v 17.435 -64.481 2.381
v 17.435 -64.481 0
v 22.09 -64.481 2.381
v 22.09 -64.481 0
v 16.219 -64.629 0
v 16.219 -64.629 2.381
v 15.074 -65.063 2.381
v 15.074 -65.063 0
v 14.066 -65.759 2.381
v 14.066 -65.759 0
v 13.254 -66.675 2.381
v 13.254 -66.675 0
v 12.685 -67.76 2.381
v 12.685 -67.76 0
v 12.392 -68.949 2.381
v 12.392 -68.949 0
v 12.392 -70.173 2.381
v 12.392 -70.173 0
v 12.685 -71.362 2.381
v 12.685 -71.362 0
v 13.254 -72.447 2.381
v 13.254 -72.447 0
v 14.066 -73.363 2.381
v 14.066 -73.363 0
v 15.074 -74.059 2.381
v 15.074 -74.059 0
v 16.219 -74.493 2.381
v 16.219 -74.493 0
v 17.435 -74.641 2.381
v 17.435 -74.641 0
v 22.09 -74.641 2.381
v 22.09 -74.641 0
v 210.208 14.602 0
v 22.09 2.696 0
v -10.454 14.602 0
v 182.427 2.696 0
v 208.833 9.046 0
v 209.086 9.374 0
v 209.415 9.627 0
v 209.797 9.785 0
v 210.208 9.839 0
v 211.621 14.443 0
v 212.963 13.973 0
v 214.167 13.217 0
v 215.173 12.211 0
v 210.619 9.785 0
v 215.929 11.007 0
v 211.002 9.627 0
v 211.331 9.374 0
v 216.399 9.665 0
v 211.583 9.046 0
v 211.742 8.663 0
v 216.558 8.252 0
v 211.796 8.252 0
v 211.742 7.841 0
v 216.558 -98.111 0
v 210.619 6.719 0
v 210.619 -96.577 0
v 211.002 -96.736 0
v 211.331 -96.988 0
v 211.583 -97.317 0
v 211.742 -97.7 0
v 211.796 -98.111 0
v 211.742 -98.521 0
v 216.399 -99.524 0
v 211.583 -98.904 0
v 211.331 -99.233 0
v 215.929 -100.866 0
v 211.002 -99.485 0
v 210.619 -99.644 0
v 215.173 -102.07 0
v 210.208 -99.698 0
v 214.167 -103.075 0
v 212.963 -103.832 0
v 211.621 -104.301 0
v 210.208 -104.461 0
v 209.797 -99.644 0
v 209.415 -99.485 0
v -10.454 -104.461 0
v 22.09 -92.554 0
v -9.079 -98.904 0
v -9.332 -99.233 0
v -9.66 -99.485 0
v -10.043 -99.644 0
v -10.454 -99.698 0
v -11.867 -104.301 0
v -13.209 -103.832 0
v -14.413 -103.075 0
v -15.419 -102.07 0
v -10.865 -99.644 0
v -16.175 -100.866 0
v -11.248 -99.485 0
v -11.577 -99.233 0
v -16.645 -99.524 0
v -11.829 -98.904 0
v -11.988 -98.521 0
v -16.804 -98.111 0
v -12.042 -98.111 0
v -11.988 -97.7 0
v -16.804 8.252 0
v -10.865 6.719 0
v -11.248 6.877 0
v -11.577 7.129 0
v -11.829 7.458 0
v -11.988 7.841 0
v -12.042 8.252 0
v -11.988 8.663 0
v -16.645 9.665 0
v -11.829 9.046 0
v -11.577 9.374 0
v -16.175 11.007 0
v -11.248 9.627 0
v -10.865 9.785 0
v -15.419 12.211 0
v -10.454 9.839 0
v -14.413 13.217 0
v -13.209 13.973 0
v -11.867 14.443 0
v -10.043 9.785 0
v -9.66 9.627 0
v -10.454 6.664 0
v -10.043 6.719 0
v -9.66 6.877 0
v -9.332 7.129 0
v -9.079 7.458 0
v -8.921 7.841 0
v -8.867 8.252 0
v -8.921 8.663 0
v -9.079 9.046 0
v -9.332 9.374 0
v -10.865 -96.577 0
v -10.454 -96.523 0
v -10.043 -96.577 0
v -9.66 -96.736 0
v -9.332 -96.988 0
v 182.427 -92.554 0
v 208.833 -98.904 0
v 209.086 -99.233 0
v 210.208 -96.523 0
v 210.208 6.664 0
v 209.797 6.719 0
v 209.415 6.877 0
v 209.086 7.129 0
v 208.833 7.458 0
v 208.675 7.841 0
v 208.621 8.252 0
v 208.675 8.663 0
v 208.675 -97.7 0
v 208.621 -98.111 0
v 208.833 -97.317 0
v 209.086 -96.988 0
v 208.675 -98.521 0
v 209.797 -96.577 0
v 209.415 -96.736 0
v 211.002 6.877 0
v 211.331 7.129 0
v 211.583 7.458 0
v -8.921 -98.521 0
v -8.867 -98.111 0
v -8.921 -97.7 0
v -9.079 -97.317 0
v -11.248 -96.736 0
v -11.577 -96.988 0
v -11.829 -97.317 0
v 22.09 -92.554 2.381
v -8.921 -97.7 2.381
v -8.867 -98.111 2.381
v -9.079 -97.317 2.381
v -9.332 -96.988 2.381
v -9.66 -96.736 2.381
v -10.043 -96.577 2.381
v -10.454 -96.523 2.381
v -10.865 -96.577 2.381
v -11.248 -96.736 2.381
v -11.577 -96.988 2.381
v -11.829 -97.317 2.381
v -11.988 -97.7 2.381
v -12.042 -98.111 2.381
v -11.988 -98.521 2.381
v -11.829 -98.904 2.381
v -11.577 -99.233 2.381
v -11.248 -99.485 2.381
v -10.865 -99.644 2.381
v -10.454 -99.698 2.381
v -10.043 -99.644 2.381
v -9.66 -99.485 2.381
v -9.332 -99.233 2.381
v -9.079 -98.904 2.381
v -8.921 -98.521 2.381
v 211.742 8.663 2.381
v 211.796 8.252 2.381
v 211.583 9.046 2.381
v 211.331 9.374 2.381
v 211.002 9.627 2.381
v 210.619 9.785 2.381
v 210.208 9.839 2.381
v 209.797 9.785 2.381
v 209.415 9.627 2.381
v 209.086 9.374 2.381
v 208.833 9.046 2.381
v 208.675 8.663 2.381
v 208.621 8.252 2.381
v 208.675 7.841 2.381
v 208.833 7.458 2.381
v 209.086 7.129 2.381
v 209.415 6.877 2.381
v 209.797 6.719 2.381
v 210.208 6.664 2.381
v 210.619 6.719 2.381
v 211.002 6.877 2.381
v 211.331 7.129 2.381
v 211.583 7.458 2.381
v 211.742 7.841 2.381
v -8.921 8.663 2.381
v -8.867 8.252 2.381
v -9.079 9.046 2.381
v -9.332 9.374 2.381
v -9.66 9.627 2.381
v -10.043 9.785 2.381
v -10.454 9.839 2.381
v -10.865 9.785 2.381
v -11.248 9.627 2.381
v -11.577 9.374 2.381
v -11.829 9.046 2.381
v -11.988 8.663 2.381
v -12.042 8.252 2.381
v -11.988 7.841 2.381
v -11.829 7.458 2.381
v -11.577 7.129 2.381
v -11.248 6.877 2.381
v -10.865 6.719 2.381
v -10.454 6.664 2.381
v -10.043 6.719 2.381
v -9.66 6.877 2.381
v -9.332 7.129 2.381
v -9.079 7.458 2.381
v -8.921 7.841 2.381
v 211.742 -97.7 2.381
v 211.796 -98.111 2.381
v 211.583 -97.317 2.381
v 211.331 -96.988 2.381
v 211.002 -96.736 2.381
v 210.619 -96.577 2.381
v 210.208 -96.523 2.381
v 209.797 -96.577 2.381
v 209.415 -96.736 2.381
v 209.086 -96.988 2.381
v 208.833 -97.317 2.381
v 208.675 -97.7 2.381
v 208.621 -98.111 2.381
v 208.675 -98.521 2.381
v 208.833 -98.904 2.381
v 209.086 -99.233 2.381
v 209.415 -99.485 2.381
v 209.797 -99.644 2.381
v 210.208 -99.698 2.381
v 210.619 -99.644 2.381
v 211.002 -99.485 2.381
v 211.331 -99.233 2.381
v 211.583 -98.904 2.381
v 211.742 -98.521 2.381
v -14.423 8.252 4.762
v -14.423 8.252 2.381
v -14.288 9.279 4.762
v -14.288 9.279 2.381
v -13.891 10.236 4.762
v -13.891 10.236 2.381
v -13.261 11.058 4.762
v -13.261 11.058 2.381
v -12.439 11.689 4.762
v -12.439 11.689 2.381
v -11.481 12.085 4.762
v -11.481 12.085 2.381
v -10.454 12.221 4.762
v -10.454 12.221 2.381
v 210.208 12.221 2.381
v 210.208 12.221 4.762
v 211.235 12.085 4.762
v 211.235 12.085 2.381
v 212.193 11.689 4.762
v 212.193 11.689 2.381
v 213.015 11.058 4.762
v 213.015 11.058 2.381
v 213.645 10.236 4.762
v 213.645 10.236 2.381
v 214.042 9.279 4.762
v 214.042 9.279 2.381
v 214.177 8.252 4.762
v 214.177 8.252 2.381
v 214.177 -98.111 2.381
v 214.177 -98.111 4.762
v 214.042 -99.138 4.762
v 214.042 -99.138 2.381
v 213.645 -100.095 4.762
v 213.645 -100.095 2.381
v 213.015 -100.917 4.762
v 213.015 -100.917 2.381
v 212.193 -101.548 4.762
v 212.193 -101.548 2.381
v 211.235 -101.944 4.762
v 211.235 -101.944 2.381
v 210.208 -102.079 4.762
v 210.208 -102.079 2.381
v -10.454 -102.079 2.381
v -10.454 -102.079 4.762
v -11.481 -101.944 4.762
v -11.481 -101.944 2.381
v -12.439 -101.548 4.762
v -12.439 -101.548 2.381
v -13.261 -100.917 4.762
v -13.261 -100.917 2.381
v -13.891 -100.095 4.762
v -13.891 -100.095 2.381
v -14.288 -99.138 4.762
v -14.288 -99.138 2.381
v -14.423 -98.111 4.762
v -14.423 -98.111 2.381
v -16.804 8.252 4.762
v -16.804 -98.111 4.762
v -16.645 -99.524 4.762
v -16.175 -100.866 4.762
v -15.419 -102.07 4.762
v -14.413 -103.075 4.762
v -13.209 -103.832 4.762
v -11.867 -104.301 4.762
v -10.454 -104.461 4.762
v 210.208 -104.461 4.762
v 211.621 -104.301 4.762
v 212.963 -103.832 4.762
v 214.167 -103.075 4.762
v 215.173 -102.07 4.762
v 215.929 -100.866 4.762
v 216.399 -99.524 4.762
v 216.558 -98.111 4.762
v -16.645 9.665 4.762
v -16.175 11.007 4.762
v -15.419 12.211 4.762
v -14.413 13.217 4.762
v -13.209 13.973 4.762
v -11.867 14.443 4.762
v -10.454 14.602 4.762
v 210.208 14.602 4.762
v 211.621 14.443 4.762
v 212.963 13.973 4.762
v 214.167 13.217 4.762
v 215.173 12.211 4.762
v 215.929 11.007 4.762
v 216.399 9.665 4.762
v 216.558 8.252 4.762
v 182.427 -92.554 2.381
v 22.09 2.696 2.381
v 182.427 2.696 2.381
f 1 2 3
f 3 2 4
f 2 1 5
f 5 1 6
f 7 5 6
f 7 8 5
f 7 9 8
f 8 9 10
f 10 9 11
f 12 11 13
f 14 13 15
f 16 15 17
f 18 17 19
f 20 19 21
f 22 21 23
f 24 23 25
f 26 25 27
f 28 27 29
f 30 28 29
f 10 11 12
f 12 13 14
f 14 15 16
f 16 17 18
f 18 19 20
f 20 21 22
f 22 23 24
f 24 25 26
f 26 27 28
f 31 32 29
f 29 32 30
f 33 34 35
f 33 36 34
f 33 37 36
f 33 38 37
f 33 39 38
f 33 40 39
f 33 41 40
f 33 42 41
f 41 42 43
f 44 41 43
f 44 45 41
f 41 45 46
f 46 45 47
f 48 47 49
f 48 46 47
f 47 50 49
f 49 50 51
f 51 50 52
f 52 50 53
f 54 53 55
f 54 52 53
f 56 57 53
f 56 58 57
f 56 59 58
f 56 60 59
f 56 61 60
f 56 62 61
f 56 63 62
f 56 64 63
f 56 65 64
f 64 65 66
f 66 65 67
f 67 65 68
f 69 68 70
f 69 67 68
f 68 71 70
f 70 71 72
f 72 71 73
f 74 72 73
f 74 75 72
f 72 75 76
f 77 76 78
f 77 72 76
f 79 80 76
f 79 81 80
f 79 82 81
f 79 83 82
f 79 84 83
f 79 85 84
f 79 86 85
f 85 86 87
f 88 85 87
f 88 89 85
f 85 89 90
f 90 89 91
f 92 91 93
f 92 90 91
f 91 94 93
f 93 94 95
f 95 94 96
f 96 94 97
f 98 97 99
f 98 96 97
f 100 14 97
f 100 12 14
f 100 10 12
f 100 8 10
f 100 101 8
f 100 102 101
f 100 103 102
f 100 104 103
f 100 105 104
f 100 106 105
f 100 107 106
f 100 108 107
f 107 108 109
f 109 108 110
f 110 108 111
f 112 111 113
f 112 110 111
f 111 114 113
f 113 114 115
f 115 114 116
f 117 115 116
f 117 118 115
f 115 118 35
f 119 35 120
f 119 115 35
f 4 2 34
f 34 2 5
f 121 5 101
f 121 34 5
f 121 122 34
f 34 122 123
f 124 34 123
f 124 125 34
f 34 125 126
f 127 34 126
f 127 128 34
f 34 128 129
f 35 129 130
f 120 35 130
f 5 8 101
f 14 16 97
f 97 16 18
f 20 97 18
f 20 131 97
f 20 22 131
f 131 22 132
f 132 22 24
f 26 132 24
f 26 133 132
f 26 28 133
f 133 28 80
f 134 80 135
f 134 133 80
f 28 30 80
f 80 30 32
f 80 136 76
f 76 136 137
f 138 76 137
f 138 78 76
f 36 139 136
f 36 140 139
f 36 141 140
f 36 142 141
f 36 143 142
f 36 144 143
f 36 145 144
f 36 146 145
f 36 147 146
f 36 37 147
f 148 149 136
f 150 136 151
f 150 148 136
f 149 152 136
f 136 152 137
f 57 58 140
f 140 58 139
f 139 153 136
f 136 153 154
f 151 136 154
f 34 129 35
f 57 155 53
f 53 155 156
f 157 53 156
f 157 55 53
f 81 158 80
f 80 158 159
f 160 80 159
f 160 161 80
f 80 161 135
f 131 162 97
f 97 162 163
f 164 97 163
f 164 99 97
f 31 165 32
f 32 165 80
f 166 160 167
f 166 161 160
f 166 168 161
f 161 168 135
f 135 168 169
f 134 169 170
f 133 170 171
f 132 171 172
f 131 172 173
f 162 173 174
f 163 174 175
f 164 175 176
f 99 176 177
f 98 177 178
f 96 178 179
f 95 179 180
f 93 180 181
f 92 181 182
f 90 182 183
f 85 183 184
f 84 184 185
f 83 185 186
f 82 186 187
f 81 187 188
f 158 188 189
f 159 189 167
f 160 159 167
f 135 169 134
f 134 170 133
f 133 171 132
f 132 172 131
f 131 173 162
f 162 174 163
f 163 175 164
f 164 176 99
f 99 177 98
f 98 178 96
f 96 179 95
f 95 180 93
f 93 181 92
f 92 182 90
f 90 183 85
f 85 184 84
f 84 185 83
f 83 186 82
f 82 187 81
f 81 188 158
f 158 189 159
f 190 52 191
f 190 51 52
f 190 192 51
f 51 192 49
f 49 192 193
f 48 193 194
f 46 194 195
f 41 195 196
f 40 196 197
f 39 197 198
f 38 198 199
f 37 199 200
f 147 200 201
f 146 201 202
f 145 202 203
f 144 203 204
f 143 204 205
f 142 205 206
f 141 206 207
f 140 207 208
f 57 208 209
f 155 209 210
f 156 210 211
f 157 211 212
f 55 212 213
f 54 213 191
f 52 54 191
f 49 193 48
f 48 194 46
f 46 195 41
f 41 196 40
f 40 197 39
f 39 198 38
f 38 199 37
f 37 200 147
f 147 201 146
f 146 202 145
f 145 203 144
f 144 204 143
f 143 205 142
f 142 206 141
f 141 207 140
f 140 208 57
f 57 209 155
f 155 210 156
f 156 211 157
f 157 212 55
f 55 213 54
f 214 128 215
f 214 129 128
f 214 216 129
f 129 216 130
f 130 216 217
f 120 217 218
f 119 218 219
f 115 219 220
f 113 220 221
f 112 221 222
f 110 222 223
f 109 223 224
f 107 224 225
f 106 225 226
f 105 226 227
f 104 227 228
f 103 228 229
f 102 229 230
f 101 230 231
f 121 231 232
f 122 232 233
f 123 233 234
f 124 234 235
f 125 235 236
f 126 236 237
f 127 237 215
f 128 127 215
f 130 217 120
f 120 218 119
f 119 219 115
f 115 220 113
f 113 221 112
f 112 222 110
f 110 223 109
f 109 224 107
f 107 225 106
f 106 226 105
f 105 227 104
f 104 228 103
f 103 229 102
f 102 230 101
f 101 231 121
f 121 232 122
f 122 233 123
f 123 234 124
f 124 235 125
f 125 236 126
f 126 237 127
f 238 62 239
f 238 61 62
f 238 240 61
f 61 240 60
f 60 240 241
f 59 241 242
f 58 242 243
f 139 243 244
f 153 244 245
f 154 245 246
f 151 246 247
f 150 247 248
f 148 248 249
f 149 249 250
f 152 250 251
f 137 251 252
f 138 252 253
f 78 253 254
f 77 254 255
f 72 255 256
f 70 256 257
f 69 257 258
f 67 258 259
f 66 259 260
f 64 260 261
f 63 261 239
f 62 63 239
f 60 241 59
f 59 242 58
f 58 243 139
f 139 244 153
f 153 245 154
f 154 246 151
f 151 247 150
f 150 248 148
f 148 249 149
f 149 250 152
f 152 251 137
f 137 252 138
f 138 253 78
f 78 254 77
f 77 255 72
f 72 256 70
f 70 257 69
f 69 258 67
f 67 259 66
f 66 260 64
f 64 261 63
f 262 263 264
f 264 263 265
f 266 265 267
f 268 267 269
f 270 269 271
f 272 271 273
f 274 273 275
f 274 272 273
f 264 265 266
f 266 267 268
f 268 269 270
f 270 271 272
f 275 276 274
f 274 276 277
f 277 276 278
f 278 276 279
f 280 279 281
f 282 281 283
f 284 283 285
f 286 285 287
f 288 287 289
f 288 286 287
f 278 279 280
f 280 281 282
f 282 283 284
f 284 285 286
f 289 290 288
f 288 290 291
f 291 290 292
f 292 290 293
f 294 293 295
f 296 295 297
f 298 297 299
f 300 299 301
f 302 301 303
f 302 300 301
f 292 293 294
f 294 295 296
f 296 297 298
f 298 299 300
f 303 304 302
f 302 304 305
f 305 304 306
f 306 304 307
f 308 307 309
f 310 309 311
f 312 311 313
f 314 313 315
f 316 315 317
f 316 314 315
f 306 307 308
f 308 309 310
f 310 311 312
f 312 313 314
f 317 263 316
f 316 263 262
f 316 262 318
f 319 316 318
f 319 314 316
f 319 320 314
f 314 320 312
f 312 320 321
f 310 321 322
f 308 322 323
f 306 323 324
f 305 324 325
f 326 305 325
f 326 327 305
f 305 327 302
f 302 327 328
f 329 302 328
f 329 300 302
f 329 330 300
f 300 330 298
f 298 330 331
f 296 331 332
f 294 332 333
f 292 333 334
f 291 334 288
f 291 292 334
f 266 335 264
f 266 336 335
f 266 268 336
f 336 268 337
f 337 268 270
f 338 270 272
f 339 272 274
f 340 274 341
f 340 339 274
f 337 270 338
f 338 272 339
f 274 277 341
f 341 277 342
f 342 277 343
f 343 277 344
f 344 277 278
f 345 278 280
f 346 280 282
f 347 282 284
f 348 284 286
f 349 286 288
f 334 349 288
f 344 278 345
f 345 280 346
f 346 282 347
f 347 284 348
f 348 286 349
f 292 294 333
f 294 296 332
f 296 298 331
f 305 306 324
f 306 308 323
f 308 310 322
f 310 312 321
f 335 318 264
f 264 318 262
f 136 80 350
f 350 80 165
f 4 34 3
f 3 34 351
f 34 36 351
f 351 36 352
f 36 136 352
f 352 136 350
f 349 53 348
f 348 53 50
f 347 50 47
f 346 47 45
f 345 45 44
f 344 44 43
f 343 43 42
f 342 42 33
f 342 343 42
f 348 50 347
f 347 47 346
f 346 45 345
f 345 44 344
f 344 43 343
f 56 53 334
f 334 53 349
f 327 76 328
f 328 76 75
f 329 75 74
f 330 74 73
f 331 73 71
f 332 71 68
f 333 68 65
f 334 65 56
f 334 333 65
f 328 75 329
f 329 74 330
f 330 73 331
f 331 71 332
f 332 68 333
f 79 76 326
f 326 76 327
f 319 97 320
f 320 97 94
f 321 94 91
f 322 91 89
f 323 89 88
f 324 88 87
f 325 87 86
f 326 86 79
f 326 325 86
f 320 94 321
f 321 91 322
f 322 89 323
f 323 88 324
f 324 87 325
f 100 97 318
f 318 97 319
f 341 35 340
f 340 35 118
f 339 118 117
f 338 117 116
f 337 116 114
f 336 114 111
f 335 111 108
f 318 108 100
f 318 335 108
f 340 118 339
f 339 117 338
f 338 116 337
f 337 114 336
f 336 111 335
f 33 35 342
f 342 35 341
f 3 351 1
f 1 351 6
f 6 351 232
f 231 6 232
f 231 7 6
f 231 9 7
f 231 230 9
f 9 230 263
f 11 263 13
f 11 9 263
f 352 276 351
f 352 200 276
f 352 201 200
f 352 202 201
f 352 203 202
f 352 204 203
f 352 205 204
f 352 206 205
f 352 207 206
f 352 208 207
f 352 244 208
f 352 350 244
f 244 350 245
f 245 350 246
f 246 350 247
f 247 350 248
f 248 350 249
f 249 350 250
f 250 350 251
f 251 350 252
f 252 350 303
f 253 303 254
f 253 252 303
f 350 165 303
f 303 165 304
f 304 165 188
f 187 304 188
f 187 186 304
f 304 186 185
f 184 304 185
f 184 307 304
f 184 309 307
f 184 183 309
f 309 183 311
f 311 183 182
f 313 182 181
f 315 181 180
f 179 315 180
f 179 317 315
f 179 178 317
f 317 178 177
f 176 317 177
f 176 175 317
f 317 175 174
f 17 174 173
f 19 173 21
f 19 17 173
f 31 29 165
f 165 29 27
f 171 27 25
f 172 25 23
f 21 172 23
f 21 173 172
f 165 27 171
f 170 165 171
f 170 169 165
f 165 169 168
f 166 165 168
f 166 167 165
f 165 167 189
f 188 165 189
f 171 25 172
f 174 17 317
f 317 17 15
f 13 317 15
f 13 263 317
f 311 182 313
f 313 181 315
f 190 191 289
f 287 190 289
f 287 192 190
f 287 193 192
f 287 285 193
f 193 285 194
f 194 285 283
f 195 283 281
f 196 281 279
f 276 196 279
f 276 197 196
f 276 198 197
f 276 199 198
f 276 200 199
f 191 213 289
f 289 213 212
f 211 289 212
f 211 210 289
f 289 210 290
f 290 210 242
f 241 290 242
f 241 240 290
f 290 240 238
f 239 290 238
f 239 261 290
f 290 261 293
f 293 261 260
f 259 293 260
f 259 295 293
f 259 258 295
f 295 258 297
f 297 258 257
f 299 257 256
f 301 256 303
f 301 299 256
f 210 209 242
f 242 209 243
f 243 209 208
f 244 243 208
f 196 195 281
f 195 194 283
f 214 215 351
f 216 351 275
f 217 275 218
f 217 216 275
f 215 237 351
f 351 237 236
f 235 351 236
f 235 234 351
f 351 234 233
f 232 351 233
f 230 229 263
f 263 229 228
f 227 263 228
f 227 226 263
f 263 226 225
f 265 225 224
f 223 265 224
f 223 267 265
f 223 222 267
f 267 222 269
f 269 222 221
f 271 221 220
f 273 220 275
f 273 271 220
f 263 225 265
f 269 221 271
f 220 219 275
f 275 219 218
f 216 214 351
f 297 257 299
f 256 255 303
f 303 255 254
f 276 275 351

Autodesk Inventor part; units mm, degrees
ref_plane "YZ Plane" through (0, 0, 0) normal (1, 0, 0) x (0, 1, 0)
ref_plane "XZ Plane" through (0, 0, 0) normal (0, 1, 0) x (-1, 0, 0)
ref_plane "XY Plane" through (0, 0, 0) normal (0, 0, 1) x (1, 0, 0)
sketch "Sketch1" plane through (0, 0, 0) normal (0, 0, 1) x (1, 0, 0)
  line L0 (-10.4542, 14.6019) -> (210.2083, 14.6019)
  line L1 (216.5583, 8.2519) -> (216.5583, -98.1106)
  line L2 (210.2083, -104.4606) -> (-10.4542, -104.4606)
  line L3 (-16.8042, -98.1106) -> (-16.8042, 8.2519)
  line L4 (99.877, 12.2207) -> (-10.4542, 12.2207)
  line L5 (-14.423, 8.2519) -> (-14.423, -44.9293)
  line L6 (99.877, 12.2207) -> (210.2083, 12.2207)
  line L7 (214.177, 8.2519) -> (214.177, -44.9293)
  line L8 (99.877, -102.0793) -> (210.2083, -102.0793)
  line L9 (214.177, -98.1106) -> (214.177, -44.9293)
  line L10 (99.877, -102.0793) -> (-10.4542, -102.0793)
  line L11 (-14.423, -98.1106) -> (-14.423, -44.9293)
  arc A0 (-10.4542, 14.6019) -> (-16.8042, 8.2519) centre (-10.4542, 8.2519) ccw
  arc A1 (216.5583, 8.2519) -> (210.2083, 14.6019) centre (210.2083, 8.2519) ccw
  arc A2 (210.2083, -104.4606) -> (216.5583, -98.1106) centre (210.2083, -98.1106) ccw
  arc A3 (-16.8042, -98.1106) -> (-10.4542, -104.4606) centre (-10.4542, -98.1106) ccw
  arc A4 (-10.4542, 12.2207) -> (-14.423, 8.2519) centre (-10.4542, 8.2519) ccw
  arc A5 (214.177, 8.2519) -> (210.2083, 12.2207) centre (210.2083, 8.2519) ccw
  arc A6 (210.2083, -102.0793) -> (214.177, -98.1106) centre (210.2083, -98.1106) ccw
  arc A7 (-14.423, -98.1106) -> (-10.4542, -102.0793) centre (-10.4542, -98.1106) ccw
  line L12 (99.877, 2.6957) -> (22.0895, 2.6957)
  line L13 (22.0895, 2.6957) -> (22.0895, -44.9293)
  line L14 (99.877, 2.6957) -> (182.427, 2.6957)
  line L15 (182.427, 2.6957) -> (182.427, -44.9293)
  line L16 (99.877, -92.5543) -> (182.427, -92.5543)
  line L17 (182.427, -92.5543) -> (182.427, -44.9293)
  line L18 (99.877, -92.5543) -> (22.0895, -92.5543)
  line L19 (22.0895, -92.5543) -> (22.0895, -44.9293)
  point P0 (0, 0)
  point P1 (-16.8042, 14.6019)
  point P2 (216.5583, -104.4606)
  point P3 (216.5583, 14.6019)
  point P4 (-16.8042, -104.4606)
  dimension "d0" = 233.3625
  dimension "d1" = 119.0625
  dimension "d9" = 6.35
  dimension "d10" = 3.9688
  dimension "d37" = 31.75
  dimension "d38" = 36.5125
  dimension "d39" = 9.525
  dimension "d40" = 9.525
extrude "Extrusion5" add sketch "Sketch1" along normal blind 2.3813 contours L0 A1 L1 A2 L2 A3 L3 A0 | L6 A5 L7 L9 A6 L8 L10 A7 L11 L5 A4 L4
sketch "Sketch6" plane through (0, 0, 2.3813) normal (0, 0, 1) x (1, 0, 0)
  line L0 (210.2083, 14.6019) -> (-10.4542, 14.6019) projected
  arc A0 (-10.4542, 14.6019) -> (-16.8042, 8.2519) centre (-10.4542, 8.2519) ccw projected
  line L1 (-16.8042, 8.2519) -> (-16.8042, -98.1106) projected
  arc A1 (-16.8042, -98.1106) -> (-10.4542, -104.4606) centre (-10.4542, -98.1106) ccw projected
  line L2 (-10.4542, -104.4606) -> (210.2083, -104.4606) projected
  arc A2 (210.2083, -104.4606) -> (216.5583, -98.1106) centre (210.2083, -98.1106) ccw projected
  line L3 (216.5583, -98.1106) -> (216.5583, 8.2519) projected
  arc A3 (216.5583, 8.2519) -> (210.2083, 14.6019) centre (210.2083, 8.2519) ccw projected
  line L4 (99.877, 12.2207) -> (-10.4542, 12.2207)
  line L5 (-14.423, 8.2519) -> (-14.423, -44.9293)
  line L6 (99.877, 12.2207) -> (210.2083, 12.2207)
  line L7 (214.177, 8.2519) -> (214.177, -44.9293)
  line L8 (99.877, -102.0793) -> (210.2083, -102.0793)
  line L9 (214.177, -98.1106) -> (214.177, -44.9293)
  line L10 (99.877, -102.0793) -> (-10.4542, -102.0793)
  line L11 (-14.423, -98.1106) -> (-14.423, -44.9293)
  arc A4 (-10.4542, 12.2207) -> (-14.423, 8.2519) centre (-10.4542, 8.2519) ccw
  arc A5 (214.177, 8.2519) -> (210.2083, 12.2207) centre (210.2083, 8.2519) ccw
  arc A6 (210.2083, -102.0793) -> (214.177, -98.1106) centre (210.2083, -98.1106) ccw
  arc A7 (-14.423, -98.1106) -> (-10.4542, -102.0793) centre (-10.4542, -98.1106) ccw
  point P0 (0, 0)
  dimension "d47" = 3.9688
extrude "Extrusion6" add sketch "Sketch6" along normal blind 2.3813
sketch "Sketch12" plane through (0, 0, 0) normal (0, 0, -1) x (-1, 0, 0)
  arc A0 (-210.2083, 14.6019) -> (-216.5583, 8.2519) centre (-210.2083, 8.2519) ccw projected
  arc A1 (-216.5583, -98.1106) -> (-210.2083, -104.4606) centre (-210.2083, -98.1106) ccw projected
  arc A2 (10.4542, -104.4606) -> (16.8042, -98.1106) centre (10.4542, -98.1106) ccw projected
  arc A3 (16.8042, 8.2519) -> (10.4542, 14.6019) centre (10.4542, 8.2519) ccw projected
  circle A4 centre (10.4542, 8.2519) radius 1.5875
  circle A5 centre (10.4542, -98.1106) radius 1.5875
  circle A6 centre (-210.2083, -98.1106) radius 1.5875
  circle A7 centre (-210.2083, 8.2519) radius 1.5875
  point P0 (0, 0)
  dimension "d64" = 3.175
  dimension "d65" = 3.175
  dimension "d66" = 3.175
  dimension "d67" = 3.175
hole "Hole2" at (210.2083, 8.2519, 0) at (-10.4542, 8.2519, 0) at (-10.4542, -98.1106, 0) at (210.2083, -98.1106, 0) direction (0, 0, 1) diameter 3.175 end through all
sketch "Sketch13" plane through (0, 0, 0) normal (0, 0, -1) x (-1, 0, 0)
  line L0 (-22.0895, 2.6957) -> (-22.0895, -92.5543) projected
  line L1 (16.8042, -98.1106) -> (16.8042, 8.2519) projected
  line L2 (16.8042, -89.9075) -> (-17.435, -89.9075)
  arc A0 (-17.435, -74.641) -> (-17.435, -64.481) centre (-17.435, -69.561) ccw
  line L3 (-17.435, -64.481) -> (-22.0895, -64.481)
  line L4 (-17.435, -74.641) -> (-22.0895, -74.641)
  line L5 (-22.0895, -64.481) -> (-22.0895, -74.641)
  point P0 (0, 0)
  dimension "d75" = 34.2392
split body "Split3" sketch "Sketch13" result one side removed curves L3 L5 L4 A0 removed pieces at (20.538, -71.2543, 0.5)
properties part number "Slave Tablet Cover"
